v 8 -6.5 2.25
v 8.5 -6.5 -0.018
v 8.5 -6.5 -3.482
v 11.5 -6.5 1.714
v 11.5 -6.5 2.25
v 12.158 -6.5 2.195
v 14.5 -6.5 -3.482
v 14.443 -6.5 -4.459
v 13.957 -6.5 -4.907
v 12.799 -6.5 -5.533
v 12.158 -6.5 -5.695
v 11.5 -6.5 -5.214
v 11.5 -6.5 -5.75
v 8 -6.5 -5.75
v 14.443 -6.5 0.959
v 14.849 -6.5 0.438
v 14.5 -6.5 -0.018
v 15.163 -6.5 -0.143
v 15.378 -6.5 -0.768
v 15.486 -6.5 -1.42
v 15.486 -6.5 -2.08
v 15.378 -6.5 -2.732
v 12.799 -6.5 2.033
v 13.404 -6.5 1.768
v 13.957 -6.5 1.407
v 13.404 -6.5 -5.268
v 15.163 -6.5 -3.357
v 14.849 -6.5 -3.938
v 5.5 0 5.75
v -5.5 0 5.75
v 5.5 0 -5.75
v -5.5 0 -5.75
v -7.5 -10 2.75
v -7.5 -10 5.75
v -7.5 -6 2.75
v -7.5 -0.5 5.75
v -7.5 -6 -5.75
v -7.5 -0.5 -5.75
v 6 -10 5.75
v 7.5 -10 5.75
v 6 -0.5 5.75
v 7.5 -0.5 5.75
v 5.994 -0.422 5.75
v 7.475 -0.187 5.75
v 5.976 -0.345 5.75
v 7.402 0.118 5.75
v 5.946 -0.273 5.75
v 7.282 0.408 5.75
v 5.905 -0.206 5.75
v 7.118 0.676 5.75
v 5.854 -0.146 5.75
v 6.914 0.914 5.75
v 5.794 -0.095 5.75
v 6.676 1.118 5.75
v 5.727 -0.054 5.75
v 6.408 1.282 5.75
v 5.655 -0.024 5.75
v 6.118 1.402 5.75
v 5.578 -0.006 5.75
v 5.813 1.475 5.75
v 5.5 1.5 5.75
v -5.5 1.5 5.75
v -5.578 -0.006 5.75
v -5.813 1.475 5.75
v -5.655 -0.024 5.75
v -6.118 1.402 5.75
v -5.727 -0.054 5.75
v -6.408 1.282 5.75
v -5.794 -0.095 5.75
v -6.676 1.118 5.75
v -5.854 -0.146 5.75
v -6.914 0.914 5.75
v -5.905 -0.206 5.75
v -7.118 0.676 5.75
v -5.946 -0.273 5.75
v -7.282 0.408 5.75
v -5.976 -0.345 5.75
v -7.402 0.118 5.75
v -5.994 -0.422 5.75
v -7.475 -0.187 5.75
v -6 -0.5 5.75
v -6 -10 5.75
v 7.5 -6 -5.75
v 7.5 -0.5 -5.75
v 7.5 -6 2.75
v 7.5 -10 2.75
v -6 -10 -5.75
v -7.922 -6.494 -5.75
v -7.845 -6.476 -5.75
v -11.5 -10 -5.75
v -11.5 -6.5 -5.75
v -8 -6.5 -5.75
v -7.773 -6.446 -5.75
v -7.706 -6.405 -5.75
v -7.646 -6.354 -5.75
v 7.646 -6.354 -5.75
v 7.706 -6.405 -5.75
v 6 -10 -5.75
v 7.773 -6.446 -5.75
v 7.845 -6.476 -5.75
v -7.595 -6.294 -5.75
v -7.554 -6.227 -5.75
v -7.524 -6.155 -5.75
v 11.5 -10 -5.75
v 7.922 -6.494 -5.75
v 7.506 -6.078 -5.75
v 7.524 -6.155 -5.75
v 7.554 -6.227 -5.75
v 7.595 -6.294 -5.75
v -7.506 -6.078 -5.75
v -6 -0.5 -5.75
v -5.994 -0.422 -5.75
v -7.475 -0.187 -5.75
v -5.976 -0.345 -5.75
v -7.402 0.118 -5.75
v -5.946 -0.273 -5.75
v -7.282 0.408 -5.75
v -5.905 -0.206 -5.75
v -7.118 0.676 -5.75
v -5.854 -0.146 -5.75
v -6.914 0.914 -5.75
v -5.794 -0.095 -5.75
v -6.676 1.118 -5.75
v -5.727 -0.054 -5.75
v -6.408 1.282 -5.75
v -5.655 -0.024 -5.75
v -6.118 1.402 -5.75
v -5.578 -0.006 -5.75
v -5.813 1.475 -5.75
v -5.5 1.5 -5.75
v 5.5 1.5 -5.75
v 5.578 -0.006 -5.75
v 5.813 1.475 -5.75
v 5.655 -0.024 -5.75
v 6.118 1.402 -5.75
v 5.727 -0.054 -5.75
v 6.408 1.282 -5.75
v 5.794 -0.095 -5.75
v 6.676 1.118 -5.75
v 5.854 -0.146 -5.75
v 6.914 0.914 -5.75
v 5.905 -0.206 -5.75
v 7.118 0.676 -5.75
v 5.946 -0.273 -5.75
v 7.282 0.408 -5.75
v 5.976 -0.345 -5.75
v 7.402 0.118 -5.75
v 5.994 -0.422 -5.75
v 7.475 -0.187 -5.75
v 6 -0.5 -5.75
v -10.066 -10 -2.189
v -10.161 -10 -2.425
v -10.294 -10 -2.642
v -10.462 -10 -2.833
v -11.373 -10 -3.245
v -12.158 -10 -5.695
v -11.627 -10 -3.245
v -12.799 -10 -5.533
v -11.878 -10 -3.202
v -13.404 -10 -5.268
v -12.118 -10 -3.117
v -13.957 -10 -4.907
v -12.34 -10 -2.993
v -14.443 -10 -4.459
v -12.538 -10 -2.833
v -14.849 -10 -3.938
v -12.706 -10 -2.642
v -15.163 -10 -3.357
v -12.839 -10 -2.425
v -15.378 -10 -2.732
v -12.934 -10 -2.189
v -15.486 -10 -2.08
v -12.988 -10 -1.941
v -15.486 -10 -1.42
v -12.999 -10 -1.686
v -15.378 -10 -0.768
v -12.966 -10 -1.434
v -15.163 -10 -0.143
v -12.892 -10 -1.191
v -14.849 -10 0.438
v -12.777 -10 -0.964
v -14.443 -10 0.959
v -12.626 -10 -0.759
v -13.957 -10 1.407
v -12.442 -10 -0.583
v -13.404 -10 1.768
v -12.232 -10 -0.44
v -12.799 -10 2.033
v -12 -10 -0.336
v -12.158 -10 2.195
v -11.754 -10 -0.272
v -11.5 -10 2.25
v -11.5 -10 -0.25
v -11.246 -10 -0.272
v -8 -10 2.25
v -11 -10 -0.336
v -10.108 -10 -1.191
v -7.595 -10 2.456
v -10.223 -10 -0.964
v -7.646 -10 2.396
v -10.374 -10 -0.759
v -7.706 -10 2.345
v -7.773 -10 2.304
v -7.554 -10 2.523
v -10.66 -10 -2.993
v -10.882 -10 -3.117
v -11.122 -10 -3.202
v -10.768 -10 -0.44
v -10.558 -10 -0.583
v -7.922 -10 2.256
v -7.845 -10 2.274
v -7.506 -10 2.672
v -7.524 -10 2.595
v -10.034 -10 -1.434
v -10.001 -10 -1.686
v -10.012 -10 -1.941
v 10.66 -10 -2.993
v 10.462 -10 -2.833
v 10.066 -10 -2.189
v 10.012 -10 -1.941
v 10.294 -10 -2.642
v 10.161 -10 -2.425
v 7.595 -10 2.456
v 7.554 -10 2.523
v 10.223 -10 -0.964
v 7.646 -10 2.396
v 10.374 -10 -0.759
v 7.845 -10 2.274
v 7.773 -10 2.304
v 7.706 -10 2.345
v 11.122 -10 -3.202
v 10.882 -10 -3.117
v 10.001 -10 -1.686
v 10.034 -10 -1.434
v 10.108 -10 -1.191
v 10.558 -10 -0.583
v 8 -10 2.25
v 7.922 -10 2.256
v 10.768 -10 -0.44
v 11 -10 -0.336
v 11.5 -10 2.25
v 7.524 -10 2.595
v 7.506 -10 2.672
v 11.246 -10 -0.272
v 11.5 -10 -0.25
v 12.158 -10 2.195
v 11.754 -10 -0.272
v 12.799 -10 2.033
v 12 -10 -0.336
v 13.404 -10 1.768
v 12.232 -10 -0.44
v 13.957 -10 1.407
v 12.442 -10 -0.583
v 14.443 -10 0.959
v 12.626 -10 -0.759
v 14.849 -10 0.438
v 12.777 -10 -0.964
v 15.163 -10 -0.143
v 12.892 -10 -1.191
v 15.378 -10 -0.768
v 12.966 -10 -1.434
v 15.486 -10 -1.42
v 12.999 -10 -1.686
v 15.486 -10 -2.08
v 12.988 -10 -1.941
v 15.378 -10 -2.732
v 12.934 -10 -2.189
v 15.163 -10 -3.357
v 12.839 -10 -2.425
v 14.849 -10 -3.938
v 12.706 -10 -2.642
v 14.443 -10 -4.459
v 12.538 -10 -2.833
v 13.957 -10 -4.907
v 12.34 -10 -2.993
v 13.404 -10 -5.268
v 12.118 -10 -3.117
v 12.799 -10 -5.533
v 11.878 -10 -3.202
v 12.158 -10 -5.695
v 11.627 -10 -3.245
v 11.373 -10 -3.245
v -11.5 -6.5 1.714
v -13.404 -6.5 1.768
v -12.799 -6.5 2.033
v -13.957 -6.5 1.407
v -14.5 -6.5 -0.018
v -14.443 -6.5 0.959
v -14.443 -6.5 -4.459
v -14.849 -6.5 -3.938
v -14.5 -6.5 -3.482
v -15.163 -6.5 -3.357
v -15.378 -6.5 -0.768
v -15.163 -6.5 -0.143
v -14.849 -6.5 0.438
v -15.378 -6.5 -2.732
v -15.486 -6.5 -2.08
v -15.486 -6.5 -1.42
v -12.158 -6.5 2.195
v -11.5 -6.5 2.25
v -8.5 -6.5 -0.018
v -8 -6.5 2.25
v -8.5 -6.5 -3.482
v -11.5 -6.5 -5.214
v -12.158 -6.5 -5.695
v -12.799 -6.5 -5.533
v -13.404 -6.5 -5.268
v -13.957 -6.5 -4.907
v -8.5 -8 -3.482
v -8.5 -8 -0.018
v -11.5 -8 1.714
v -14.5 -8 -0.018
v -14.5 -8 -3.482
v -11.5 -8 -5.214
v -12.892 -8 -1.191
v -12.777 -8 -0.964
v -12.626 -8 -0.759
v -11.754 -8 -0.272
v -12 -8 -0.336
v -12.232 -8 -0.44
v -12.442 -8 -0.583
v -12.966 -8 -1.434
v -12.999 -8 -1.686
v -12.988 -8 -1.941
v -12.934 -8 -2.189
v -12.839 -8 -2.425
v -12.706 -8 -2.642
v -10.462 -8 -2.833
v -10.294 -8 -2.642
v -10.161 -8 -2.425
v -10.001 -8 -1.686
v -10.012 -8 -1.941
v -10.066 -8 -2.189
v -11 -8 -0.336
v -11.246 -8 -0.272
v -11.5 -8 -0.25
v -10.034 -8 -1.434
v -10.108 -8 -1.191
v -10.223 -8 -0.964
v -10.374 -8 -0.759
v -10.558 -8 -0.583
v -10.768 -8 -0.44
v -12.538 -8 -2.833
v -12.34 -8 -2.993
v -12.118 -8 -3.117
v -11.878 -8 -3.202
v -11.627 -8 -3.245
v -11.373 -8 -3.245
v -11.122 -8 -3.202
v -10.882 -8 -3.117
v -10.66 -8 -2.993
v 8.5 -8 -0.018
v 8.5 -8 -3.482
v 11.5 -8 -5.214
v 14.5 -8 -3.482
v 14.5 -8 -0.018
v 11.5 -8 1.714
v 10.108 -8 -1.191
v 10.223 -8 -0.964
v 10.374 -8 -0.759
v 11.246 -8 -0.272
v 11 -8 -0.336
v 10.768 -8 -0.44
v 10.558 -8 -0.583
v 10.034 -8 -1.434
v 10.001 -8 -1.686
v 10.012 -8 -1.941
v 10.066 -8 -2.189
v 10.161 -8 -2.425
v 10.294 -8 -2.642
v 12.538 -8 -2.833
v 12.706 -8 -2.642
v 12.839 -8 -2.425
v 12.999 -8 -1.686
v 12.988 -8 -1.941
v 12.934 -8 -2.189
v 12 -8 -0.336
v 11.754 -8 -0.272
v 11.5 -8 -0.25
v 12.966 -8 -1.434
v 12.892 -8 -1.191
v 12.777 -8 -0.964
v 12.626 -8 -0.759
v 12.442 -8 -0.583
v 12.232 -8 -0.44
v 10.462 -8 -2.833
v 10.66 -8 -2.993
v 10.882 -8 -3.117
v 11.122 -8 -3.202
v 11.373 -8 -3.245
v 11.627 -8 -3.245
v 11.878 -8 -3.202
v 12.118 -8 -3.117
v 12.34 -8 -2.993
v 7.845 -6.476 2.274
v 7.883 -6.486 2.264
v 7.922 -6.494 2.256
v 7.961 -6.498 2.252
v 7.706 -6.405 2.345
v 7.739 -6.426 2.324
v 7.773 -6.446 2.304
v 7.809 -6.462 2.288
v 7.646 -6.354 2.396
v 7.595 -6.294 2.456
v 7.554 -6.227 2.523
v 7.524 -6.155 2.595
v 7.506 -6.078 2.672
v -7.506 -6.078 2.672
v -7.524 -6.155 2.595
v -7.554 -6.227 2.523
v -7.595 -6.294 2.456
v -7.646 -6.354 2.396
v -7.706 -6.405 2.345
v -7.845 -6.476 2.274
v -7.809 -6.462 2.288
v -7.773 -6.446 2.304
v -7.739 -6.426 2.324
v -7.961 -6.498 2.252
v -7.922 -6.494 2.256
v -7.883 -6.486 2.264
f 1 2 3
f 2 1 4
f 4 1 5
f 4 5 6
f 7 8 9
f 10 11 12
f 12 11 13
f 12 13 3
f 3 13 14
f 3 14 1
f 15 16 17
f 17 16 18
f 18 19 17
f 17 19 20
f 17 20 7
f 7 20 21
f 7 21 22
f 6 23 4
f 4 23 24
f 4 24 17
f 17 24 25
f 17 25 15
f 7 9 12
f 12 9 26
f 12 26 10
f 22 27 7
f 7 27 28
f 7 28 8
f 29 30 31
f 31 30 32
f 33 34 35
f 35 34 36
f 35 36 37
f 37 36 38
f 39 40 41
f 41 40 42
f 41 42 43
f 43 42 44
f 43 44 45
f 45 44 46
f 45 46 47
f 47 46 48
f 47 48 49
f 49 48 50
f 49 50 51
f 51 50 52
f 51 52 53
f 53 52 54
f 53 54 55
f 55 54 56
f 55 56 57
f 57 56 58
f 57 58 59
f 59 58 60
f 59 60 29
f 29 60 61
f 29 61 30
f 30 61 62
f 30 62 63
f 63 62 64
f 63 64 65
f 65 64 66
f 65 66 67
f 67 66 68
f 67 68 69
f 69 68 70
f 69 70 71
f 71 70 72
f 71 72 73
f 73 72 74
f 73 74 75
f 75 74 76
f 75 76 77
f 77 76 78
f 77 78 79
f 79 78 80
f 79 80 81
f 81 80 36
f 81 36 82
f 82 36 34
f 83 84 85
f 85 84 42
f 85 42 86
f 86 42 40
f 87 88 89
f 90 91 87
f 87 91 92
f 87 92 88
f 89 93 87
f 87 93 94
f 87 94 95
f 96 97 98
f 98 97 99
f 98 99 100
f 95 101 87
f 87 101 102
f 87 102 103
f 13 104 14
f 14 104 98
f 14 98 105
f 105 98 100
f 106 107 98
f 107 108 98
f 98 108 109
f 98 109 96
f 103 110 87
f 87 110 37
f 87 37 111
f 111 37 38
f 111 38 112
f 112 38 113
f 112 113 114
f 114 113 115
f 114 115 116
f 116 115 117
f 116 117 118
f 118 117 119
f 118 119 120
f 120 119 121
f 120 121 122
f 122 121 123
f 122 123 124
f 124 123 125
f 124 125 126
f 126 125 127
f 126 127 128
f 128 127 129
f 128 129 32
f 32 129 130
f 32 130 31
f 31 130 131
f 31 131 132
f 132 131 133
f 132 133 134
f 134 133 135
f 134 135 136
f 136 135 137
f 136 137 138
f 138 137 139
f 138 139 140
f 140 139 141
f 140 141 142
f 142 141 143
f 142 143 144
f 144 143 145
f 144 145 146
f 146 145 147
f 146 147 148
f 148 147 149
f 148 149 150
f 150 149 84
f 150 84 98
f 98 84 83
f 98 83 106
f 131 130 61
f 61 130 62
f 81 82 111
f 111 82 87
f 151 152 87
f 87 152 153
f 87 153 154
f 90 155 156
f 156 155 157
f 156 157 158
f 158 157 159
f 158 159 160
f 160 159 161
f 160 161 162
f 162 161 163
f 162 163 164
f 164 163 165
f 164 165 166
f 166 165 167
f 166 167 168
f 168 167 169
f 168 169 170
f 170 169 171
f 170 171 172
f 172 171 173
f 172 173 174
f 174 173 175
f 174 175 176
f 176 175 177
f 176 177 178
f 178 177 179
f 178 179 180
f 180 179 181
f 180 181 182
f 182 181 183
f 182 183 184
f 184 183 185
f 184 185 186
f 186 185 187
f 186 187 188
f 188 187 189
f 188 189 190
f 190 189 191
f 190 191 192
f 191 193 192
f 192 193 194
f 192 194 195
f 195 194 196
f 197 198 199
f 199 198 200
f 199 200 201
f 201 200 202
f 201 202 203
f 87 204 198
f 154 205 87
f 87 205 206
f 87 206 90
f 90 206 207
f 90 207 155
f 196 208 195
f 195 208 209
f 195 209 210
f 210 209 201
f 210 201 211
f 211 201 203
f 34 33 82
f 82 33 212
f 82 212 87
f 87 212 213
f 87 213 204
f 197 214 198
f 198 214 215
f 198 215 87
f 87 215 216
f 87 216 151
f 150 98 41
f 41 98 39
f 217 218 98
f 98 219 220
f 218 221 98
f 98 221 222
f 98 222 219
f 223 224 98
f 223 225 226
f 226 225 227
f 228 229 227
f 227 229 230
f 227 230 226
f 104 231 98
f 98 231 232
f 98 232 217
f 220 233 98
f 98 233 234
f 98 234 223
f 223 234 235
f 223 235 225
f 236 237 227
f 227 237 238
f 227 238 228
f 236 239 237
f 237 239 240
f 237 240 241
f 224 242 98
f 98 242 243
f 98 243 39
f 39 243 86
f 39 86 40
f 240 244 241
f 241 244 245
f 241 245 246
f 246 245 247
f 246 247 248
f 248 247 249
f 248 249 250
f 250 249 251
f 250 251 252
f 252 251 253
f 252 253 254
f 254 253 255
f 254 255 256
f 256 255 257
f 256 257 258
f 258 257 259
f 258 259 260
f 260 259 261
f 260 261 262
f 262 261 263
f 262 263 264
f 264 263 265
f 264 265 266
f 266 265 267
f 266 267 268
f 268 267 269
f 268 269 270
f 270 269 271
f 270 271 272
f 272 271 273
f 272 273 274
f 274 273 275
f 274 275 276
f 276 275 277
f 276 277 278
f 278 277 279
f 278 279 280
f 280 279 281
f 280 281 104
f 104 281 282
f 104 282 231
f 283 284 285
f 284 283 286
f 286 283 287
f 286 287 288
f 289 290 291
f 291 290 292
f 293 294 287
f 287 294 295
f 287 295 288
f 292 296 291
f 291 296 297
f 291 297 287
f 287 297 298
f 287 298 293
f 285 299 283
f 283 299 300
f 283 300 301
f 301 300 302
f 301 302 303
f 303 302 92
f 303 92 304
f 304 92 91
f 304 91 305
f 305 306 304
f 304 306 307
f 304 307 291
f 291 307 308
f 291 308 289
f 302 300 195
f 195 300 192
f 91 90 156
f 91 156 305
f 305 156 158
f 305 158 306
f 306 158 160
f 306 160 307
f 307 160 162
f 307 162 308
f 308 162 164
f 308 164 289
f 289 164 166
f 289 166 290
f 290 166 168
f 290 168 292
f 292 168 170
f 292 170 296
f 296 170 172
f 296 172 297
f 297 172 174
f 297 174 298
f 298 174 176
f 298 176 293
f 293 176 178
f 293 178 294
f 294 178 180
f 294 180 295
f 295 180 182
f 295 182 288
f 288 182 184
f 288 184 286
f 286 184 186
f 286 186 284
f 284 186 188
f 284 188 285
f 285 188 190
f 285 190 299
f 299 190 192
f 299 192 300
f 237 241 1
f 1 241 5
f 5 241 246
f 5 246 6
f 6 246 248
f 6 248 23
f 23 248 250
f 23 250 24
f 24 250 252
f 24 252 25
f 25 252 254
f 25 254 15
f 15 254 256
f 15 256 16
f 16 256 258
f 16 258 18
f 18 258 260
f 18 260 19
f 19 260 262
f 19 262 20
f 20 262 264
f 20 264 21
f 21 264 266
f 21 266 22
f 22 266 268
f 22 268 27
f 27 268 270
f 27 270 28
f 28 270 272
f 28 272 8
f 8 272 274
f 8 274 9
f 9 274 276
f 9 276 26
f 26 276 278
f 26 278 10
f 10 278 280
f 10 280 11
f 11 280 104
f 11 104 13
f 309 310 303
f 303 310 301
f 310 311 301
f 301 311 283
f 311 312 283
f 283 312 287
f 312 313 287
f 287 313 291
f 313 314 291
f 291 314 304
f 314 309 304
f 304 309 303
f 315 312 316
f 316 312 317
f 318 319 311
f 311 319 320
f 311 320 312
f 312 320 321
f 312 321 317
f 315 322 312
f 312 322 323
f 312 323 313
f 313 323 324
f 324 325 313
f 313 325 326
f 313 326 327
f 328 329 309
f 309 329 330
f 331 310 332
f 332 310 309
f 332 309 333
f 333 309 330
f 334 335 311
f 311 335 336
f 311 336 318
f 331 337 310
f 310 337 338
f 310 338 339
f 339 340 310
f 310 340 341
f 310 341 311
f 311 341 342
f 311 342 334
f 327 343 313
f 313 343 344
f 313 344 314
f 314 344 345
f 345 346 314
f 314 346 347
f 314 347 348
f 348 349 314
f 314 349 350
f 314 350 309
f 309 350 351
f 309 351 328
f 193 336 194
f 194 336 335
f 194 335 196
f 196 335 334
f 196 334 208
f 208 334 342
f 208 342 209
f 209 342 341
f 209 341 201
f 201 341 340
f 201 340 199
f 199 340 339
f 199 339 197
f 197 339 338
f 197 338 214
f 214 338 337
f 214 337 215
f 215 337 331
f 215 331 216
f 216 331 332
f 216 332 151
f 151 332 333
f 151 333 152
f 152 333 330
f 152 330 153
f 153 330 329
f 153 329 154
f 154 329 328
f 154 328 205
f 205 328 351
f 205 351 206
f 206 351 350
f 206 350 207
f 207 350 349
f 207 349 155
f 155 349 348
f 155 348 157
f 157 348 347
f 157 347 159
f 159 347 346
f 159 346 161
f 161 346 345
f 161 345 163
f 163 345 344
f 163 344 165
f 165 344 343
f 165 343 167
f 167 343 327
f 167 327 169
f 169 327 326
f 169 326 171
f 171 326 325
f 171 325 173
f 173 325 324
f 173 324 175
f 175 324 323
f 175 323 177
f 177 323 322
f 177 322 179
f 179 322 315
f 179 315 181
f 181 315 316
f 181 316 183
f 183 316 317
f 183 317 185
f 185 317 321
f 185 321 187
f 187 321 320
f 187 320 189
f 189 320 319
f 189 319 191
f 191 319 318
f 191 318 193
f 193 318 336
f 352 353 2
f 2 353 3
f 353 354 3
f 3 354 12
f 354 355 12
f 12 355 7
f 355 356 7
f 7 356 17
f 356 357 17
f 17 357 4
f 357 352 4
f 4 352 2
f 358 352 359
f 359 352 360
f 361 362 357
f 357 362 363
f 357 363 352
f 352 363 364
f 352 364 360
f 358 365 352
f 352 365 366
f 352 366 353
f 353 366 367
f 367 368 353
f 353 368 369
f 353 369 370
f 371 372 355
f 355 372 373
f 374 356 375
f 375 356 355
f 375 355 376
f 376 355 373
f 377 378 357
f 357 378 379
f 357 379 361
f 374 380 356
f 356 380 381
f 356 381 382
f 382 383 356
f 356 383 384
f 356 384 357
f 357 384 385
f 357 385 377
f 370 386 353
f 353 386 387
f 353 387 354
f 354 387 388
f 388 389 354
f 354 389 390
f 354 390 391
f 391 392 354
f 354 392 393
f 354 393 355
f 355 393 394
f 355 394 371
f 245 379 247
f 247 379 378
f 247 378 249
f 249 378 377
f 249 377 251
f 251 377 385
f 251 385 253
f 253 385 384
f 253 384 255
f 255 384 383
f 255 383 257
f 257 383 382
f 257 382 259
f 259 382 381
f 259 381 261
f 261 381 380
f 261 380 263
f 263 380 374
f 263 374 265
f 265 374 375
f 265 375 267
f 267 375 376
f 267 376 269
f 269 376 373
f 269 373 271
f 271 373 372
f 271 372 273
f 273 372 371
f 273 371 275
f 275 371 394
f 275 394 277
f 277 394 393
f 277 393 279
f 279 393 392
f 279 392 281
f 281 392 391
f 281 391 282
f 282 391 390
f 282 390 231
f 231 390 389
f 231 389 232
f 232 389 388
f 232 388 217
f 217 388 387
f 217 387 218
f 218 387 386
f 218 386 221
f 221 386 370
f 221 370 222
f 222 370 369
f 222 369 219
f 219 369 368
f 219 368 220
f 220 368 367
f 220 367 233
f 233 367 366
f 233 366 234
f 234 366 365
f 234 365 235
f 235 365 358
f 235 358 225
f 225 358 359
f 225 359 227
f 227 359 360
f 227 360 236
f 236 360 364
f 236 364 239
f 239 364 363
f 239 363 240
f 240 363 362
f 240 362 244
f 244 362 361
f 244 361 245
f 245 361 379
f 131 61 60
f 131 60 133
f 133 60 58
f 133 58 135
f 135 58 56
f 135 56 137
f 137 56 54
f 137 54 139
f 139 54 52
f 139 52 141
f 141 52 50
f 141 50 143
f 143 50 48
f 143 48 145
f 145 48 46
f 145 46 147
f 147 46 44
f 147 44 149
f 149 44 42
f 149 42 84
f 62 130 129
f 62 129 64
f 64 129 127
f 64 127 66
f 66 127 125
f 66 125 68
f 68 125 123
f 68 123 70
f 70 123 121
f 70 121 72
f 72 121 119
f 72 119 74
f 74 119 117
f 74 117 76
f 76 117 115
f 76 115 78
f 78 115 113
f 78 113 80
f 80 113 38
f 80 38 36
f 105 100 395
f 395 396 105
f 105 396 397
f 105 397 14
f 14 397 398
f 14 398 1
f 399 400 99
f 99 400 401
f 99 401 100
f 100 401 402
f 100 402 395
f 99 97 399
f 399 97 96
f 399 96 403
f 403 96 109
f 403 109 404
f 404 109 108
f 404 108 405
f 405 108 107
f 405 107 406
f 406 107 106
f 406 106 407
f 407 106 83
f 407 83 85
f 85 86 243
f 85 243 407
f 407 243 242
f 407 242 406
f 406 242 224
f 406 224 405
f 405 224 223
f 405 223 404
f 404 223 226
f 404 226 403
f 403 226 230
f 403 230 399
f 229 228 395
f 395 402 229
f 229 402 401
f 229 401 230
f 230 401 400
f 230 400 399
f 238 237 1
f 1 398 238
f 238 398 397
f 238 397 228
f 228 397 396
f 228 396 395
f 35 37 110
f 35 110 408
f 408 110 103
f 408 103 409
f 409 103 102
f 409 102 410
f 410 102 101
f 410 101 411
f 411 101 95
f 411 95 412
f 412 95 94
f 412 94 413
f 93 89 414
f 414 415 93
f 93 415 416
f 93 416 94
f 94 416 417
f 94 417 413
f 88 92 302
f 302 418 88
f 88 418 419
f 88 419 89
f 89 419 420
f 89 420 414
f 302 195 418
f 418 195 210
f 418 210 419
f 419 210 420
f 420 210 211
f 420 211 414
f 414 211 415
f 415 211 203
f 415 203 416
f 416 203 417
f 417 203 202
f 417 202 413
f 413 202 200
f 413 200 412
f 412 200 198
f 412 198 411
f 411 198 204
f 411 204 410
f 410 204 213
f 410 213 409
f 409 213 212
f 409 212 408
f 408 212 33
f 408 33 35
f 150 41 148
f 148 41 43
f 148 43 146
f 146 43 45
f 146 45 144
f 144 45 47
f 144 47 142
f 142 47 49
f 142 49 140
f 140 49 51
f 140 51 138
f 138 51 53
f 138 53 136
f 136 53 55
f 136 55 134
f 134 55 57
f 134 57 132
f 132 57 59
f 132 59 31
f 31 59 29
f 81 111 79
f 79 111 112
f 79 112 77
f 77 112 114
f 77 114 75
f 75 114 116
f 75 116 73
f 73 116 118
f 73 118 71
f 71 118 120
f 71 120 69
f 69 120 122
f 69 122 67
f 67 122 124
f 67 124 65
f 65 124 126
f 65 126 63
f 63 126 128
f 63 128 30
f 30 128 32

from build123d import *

# Parameters (mm, degrees)
SKETCH1_W           = 15
SKETCH1_H           = 11.5
BOSS_EXTRUDE1_DEPTH = 1.5
SKETCH4_W           = 1.5
SKETCH4_H           = 11.5
BOSS_EXTRUDE2_DEPTH = 10
BOSS_EXTRUDE3_DEPTH = 3.5
CUT_EXTRUDE1_DEPTH  = 1.5
SKETCH12_R          = 1.5
CUT_EXTRUDE3_DEPTH  = 19.366069258
FILLET1_R           = 2
FILLET2_R           = 0.5


with BuildPart() as part:
    # Sketch1 → Boss-Extrude1 (new body)
    with BuildSketch(Plane(origin=(0, 0, 0), x_dir=(1, 0, 0), z_dir=(0, 1, 0))):
        Rectangle(SKETCH1_W, SKETCH1_H)
    extrude(amount=BOSS_EXTRUDE1_DEPTH)

    # Sketch4 → Boss-Extrude2 (add)
    with BuildSketch(Plane.XZ):
        with Locations((-6.75, 0)):
            Rectangle(SKETCH4_W, SKETCH4_H)
        with Locations((6.75, 0)):
            Rectangle(SKETCH4_W, SKETCH4_H)
    extrude(amount=BOSS_EXTRUDE2_DEPTH)

    # Sketch5 → Boss-Extrude3 (add)
    with BuildSketch(Plane.XZ.offset(10)):
        with BuildLine():
            Line((-6, -5.75), (-11.5, -5.75))
            ThreePointArc((-11.5, -5.75), (-15.5, -1.75), (-11.5, 2.25))
            Line((-11.5, 2.25), (-6, 2.25))
            Line((-6, 2.25), (-6, -5.75))
        make_face()
        with BuildLine():
            Line((6, -5.75), (11.5, -5.75))
            ThreePointArc((11.5, -5.75), (15.5, -1.75), (11.5, 2.25))
            Line((11.5, 2.25), (6, 2.25))
            Line((6, 2.25), (6, -5.75))
        make_face()
    extrude(amount=-BOSS_EXTRUDE3_DEPTH)

    # Sketch10 → Cut-Extrude1 (cut)
    with BuildSketch(Plane(origin=(0, -6.5, 0), x_dir=(1, 0, 0), z_dir=(0, 1, 0))):
        Polygon((-8.5, 3.482050808), (-11.5, 5.214101615), (-14.5, 3.482050808), (-14.5, 0.017949192), (-11.5, -1.714101615), (-8.5, 0.017949192), align=None)
    cut_extrude1 = extrude(amount=-CUT_EXTRUDE1_DEPTH, mode=Mode.SUBTRACT)

    # Sketch12 → Cut-Extrude3 (cut, through all)
    with BuildSketch(Plane(origin=(0, -6.5, 0), x_dir=(1, 0, 0), z_dir=(0, 1, 0))):
        with Locations(Location((-11.5, 1.75, 0), (0, 0, 270))):
            Circle(SKETCH12_R)
    cut_extrude3 = extrude(amount=-CUT_EXTRUDE3_DEPTH, mode=Mode.SUBTRACT)

    # Mirror1: Cut-Extrude1, Cut-Extrude3 across plane
    add(cut_extrude1.mirror(Plane(origin=(0, 0, 0), x_dir=(0, 0, 1), z_dir=(1, 0, 0))), mode=Mode.SUBTRACT)
    add(cut_extrude3.mirror(Plane(origin=(0, 0, 0), x_dir=(0, 0, 1), z_dir=(1, 0, 0))), mode=Mode.SUBTRACT)

    # Fillet1
    fillet1_edges = [part.edges().sort_by_distance(p)[0] for p in [
        (7.5, 1.5, 0),
        (-7.5, 1.5, 0),
    ]]
    fillet(fillet1_edges, radius=FILLET1_R)

    # Fillet2
    fillet2_edges = [part.edges().sort_by_distance(p)[0] for p in [
        (-6, 0, 0),
        (6, 0, 0),
        (-7.5, -6.5, -1.75),
        (-7.5, -8.25, 2.25),
        (7.5, -8.25, 2.25),
        (7.5, -6.5, -1.75),
    ]]
    fillet(fillet2_edges, radius=FILLET2_R)


solid = part.part
